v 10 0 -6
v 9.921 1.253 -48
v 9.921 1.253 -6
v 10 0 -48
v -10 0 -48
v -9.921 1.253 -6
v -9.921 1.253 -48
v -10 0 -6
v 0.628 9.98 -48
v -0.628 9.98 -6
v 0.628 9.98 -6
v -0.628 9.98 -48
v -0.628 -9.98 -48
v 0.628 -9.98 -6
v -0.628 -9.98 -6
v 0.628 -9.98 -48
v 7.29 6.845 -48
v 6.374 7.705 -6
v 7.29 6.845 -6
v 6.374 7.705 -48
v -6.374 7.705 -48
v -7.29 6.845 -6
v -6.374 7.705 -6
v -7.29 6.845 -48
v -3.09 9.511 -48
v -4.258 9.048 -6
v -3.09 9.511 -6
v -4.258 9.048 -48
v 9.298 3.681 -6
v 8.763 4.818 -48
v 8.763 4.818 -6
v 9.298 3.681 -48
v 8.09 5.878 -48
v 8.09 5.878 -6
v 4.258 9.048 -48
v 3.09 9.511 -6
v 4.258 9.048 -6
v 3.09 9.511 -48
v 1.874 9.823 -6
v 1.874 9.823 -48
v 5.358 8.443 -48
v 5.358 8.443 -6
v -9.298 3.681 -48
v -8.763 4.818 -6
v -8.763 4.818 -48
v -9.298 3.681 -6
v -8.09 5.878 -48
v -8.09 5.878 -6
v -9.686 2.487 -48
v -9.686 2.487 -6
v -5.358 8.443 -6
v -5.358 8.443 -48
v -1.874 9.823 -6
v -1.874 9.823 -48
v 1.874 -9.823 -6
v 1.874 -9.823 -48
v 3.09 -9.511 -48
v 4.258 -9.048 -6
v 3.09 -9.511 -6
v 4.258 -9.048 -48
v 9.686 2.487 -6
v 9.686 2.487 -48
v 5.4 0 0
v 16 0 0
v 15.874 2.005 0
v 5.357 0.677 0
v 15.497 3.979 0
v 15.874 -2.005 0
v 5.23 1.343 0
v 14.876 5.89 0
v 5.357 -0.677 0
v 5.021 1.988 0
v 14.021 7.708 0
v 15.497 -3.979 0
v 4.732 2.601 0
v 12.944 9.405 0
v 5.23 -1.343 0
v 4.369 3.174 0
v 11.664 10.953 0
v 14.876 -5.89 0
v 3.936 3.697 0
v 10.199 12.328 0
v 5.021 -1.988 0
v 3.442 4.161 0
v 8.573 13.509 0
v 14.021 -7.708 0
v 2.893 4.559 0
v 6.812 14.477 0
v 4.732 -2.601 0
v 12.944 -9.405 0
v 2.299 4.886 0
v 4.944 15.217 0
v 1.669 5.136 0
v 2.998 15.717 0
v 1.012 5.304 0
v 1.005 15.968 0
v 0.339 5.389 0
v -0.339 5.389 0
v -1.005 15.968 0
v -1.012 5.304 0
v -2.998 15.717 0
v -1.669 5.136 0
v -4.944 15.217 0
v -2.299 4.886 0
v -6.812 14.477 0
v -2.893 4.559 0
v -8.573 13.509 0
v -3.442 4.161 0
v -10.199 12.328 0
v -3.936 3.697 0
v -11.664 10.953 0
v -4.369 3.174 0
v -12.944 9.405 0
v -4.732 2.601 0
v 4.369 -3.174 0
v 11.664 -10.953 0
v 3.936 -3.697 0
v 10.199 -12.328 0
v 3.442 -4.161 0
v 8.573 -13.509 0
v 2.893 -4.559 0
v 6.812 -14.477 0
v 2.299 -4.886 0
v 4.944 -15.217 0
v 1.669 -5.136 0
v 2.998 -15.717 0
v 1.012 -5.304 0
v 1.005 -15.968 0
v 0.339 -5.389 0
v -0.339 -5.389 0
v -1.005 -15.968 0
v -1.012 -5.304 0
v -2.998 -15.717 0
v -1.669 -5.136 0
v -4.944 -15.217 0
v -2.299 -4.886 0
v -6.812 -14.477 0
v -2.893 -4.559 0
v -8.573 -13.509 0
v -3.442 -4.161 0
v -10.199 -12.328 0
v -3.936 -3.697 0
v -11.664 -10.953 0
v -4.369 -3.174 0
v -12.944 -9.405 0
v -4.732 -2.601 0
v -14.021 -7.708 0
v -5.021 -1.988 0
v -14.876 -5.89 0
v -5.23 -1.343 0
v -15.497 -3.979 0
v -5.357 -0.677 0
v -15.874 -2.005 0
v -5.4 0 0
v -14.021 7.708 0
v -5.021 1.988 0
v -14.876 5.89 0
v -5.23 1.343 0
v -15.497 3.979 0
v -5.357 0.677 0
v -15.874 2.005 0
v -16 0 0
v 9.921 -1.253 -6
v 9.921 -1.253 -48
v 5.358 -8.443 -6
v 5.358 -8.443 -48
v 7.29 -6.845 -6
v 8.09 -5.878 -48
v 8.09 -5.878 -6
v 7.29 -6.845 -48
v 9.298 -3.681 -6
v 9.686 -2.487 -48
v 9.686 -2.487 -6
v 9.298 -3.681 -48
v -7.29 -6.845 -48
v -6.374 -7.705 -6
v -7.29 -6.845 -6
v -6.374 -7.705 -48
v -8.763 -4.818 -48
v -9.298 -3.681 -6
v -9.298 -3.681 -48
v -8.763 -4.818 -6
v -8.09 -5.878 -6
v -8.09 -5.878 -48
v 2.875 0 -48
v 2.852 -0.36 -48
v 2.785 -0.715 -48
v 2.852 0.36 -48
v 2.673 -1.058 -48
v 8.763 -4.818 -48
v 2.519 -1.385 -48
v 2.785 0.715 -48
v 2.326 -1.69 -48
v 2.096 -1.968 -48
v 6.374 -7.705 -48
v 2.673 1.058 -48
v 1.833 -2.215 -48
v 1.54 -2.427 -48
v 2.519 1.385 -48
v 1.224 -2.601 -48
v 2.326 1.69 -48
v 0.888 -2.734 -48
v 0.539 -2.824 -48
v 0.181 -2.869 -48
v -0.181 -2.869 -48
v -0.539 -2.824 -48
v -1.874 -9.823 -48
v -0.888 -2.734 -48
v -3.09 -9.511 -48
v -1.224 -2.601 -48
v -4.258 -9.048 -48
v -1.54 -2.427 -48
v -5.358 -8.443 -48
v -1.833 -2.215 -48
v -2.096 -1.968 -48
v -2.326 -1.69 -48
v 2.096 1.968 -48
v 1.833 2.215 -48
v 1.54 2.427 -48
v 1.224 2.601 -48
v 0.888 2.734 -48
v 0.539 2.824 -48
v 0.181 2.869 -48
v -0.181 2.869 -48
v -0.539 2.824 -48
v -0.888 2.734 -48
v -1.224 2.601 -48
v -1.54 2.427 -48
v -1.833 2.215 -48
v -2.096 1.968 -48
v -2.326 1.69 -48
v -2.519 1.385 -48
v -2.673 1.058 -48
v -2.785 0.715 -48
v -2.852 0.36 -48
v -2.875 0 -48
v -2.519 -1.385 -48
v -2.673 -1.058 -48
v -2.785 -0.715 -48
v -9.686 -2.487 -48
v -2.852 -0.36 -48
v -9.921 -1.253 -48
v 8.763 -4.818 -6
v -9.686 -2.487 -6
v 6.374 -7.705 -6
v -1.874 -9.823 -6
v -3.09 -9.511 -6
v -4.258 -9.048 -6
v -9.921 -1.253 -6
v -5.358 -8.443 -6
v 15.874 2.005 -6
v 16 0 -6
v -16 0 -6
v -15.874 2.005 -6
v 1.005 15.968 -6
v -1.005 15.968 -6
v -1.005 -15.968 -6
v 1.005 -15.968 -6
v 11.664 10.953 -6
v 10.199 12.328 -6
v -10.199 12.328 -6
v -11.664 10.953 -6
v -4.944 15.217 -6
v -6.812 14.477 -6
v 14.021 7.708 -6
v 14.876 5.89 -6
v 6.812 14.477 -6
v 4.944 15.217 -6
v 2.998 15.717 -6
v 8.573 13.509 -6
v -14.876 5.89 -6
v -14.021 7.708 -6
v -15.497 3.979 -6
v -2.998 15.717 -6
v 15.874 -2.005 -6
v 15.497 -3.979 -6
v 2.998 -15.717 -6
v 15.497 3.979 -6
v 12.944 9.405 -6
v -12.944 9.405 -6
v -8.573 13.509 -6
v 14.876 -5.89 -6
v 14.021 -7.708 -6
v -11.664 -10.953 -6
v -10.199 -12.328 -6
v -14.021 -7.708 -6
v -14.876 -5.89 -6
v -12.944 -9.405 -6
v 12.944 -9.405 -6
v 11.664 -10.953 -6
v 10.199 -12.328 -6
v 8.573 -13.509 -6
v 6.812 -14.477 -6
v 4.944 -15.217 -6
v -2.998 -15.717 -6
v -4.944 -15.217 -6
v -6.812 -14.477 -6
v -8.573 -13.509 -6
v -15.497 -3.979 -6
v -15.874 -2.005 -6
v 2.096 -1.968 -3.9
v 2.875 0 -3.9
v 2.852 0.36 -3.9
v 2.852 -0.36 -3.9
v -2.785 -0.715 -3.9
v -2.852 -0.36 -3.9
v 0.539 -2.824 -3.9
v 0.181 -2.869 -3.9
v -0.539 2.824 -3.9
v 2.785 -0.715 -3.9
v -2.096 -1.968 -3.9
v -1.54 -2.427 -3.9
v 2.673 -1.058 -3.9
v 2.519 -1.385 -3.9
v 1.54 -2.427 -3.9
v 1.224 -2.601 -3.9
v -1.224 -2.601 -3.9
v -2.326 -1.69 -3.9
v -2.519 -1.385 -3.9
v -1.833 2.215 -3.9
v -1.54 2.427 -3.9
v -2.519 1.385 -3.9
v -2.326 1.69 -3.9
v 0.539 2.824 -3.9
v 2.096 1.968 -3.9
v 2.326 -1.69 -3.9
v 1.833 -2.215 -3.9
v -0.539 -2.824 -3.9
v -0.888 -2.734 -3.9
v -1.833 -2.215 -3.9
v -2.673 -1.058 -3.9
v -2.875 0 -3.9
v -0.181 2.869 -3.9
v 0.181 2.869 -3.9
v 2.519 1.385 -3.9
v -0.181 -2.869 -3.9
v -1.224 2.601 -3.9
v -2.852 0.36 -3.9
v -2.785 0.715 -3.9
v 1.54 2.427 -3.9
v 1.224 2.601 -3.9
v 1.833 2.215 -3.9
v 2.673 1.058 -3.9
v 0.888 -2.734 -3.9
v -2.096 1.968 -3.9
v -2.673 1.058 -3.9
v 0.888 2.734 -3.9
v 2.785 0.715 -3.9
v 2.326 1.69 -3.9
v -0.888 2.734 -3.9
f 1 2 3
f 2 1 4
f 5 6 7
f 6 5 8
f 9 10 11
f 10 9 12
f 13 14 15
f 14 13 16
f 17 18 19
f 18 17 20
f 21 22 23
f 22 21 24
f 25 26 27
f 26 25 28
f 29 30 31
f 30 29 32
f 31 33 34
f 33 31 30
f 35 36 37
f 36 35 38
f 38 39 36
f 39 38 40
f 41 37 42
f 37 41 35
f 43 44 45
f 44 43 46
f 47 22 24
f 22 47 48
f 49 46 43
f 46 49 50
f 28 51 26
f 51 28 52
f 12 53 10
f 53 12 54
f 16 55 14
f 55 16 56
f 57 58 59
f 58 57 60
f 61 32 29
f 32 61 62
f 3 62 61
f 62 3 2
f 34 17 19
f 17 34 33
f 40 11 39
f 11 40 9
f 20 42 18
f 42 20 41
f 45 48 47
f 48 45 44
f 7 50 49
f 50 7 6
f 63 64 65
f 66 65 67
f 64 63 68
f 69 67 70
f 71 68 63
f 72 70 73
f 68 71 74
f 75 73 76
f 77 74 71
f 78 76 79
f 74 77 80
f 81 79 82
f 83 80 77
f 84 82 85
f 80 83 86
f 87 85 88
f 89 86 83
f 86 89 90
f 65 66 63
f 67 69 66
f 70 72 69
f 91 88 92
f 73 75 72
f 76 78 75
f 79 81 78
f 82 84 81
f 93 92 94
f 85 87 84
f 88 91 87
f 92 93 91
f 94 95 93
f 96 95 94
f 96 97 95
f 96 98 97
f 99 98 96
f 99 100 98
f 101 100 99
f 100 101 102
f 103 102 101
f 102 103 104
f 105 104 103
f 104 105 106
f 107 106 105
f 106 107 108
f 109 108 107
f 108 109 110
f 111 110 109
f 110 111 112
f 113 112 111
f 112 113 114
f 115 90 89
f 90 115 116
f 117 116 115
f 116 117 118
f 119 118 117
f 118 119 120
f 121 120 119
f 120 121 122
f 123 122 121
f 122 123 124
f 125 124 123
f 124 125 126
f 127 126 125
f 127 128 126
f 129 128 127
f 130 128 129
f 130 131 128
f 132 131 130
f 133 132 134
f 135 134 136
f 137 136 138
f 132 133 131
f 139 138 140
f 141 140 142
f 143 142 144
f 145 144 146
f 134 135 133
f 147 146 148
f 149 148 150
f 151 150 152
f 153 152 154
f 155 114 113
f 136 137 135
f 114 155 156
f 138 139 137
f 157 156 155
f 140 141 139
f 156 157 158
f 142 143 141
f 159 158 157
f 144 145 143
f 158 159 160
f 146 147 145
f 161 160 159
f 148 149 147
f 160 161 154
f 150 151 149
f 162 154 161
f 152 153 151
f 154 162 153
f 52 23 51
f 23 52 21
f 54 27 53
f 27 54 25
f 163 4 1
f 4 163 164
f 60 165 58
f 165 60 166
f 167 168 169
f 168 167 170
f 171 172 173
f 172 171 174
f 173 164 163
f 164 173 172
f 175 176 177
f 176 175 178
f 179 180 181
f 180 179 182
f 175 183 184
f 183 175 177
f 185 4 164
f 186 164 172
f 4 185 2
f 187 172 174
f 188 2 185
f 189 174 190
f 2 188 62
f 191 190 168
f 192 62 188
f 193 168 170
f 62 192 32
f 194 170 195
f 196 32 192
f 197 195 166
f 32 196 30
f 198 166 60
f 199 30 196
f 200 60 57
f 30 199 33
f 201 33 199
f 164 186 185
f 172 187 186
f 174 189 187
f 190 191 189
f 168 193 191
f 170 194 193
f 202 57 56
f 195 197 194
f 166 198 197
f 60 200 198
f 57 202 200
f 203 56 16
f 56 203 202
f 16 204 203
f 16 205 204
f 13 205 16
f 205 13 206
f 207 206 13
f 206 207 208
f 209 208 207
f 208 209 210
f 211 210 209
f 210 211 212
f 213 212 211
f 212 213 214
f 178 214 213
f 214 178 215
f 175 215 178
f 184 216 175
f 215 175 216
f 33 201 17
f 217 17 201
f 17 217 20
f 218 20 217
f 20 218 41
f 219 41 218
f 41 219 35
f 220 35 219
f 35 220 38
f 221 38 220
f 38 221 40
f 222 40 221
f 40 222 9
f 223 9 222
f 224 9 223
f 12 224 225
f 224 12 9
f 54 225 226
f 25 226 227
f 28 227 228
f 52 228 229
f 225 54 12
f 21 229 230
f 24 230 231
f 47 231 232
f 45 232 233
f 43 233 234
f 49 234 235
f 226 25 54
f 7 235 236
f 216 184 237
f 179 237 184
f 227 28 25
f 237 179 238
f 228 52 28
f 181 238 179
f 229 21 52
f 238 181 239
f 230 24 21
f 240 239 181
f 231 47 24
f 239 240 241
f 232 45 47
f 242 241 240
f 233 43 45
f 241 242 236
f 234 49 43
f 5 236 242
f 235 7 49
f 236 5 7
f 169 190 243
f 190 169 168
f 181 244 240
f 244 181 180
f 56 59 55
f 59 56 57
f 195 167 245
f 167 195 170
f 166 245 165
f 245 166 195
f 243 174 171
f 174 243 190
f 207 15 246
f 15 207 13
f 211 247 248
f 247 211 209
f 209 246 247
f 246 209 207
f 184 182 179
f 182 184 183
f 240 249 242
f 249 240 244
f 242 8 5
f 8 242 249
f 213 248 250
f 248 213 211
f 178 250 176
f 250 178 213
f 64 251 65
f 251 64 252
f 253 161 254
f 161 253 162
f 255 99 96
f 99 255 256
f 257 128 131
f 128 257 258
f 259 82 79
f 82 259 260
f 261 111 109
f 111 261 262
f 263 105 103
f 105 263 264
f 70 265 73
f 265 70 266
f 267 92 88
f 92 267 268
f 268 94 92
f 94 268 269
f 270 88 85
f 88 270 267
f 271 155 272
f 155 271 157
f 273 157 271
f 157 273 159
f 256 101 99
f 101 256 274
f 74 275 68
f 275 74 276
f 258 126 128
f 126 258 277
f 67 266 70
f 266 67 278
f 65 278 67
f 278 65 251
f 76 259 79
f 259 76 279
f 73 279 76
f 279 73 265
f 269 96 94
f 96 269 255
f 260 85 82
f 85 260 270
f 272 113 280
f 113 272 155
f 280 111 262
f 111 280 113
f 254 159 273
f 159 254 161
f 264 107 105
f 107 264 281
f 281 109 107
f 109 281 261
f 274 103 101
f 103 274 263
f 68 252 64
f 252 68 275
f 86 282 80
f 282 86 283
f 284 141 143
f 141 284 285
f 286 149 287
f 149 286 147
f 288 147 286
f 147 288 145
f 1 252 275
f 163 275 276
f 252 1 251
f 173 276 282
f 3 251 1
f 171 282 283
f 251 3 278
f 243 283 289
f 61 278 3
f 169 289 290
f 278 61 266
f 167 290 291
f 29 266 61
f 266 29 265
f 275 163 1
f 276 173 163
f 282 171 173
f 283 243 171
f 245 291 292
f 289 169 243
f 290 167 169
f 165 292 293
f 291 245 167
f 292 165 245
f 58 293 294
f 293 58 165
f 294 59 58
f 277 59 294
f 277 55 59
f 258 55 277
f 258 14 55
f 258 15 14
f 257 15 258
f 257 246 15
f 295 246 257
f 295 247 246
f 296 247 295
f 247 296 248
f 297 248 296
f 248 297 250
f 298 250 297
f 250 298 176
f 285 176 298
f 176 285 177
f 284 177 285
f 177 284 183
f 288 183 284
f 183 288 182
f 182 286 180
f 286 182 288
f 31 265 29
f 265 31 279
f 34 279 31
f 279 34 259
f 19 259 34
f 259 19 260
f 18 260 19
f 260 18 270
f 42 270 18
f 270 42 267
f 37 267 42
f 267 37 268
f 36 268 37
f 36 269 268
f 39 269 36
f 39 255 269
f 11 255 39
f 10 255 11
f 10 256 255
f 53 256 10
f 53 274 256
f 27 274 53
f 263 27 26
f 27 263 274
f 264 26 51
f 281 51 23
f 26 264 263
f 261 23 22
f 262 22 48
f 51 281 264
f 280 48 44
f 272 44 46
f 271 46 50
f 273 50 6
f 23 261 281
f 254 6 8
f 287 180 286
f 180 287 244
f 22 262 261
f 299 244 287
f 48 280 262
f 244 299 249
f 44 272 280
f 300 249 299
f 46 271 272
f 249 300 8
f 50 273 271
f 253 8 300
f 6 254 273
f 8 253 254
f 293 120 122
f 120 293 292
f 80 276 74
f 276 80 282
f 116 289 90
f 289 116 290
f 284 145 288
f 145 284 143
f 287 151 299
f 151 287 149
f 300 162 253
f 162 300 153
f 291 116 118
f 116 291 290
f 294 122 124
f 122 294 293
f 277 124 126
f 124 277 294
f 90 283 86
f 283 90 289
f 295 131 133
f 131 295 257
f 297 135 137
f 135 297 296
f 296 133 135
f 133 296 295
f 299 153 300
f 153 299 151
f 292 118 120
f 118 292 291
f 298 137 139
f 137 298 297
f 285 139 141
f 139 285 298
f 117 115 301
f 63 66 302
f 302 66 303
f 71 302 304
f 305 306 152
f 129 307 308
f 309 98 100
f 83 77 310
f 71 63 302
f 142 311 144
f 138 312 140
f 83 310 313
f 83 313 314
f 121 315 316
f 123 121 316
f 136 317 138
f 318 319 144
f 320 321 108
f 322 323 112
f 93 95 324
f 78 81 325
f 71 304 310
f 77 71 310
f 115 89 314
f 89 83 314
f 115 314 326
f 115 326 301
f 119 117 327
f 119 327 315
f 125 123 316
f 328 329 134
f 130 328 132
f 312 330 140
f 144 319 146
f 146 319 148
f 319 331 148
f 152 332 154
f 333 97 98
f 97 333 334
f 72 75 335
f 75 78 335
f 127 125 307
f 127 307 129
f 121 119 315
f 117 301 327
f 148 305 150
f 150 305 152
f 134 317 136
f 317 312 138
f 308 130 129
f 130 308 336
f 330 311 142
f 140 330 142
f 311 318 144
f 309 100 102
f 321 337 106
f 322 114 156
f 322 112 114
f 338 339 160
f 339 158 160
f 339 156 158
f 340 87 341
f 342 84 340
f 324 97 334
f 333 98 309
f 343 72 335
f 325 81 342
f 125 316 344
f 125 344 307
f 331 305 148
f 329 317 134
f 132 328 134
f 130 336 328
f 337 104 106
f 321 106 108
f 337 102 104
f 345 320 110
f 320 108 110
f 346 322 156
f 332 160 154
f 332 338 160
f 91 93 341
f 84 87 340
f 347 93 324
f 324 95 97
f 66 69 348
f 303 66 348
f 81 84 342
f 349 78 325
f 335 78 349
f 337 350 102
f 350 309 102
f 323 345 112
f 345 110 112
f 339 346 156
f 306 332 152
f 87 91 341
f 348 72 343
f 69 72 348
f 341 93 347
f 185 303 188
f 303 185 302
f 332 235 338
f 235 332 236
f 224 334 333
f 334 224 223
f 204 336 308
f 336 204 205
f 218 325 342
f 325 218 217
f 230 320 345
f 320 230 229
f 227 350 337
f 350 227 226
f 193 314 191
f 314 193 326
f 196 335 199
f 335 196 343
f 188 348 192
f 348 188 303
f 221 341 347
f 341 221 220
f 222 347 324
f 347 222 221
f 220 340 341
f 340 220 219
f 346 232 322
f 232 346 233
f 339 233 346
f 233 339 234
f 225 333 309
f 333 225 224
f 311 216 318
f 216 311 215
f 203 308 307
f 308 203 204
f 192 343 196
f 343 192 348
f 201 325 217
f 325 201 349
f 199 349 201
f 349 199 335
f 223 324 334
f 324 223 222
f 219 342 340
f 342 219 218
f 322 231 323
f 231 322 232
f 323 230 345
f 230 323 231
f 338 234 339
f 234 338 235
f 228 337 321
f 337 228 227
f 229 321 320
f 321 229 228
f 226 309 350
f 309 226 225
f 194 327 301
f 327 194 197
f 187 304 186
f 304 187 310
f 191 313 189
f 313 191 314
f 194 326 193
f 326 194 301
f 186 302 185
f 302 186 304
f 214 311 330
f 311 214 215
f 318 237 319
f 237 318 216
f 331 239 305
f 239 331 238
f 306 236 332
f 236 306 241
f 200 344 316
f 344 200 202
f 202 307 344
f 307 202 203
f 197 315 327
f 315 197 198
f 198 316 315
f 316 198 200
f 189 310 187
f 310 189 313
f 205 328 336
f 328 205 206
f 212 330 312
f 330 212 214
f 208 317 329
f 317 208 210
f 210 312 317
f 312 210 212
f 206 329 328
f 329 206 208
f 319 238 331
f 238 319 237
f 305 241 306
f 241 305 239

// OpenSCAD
$fn = 50;


difference() {
	union() {
		translate(v = [0, 0, -48.0000000000]) {
			cylinder(h = 48, r = 10.0000000000);
		}
		translate(v = [0, 0, -6.0000000000]) {
			cylinder(h = 6, r = 16.0000000000);
		}
	}
	union() {
		translate(v = [0, 0, 0]) {
			rotate(a = [0, 0, 0]) {
				difference() {
					union() {
						#translate(v = [0, 0, -48.0000000000]) {
							cylinder(h = 48, r = 2.6000000000);
						}
						#translate(v = [0, 0, -3.9000000000]) {
							cylinder(h = 3.9000000000, r1 = 2.8750000000, r2 = 5.4000000000);
						}
						#translate(v = [0, 0, -48.0000000000]) {
							cylinder(h = 48, r = 2.8750000000);
						}
						#translate(v = [0, 0, -48.0000000000]) {
							cylinder(h = 48, r = 2.6000000000);
						}
					}
					union();
				}
			}
		}
	}
}
